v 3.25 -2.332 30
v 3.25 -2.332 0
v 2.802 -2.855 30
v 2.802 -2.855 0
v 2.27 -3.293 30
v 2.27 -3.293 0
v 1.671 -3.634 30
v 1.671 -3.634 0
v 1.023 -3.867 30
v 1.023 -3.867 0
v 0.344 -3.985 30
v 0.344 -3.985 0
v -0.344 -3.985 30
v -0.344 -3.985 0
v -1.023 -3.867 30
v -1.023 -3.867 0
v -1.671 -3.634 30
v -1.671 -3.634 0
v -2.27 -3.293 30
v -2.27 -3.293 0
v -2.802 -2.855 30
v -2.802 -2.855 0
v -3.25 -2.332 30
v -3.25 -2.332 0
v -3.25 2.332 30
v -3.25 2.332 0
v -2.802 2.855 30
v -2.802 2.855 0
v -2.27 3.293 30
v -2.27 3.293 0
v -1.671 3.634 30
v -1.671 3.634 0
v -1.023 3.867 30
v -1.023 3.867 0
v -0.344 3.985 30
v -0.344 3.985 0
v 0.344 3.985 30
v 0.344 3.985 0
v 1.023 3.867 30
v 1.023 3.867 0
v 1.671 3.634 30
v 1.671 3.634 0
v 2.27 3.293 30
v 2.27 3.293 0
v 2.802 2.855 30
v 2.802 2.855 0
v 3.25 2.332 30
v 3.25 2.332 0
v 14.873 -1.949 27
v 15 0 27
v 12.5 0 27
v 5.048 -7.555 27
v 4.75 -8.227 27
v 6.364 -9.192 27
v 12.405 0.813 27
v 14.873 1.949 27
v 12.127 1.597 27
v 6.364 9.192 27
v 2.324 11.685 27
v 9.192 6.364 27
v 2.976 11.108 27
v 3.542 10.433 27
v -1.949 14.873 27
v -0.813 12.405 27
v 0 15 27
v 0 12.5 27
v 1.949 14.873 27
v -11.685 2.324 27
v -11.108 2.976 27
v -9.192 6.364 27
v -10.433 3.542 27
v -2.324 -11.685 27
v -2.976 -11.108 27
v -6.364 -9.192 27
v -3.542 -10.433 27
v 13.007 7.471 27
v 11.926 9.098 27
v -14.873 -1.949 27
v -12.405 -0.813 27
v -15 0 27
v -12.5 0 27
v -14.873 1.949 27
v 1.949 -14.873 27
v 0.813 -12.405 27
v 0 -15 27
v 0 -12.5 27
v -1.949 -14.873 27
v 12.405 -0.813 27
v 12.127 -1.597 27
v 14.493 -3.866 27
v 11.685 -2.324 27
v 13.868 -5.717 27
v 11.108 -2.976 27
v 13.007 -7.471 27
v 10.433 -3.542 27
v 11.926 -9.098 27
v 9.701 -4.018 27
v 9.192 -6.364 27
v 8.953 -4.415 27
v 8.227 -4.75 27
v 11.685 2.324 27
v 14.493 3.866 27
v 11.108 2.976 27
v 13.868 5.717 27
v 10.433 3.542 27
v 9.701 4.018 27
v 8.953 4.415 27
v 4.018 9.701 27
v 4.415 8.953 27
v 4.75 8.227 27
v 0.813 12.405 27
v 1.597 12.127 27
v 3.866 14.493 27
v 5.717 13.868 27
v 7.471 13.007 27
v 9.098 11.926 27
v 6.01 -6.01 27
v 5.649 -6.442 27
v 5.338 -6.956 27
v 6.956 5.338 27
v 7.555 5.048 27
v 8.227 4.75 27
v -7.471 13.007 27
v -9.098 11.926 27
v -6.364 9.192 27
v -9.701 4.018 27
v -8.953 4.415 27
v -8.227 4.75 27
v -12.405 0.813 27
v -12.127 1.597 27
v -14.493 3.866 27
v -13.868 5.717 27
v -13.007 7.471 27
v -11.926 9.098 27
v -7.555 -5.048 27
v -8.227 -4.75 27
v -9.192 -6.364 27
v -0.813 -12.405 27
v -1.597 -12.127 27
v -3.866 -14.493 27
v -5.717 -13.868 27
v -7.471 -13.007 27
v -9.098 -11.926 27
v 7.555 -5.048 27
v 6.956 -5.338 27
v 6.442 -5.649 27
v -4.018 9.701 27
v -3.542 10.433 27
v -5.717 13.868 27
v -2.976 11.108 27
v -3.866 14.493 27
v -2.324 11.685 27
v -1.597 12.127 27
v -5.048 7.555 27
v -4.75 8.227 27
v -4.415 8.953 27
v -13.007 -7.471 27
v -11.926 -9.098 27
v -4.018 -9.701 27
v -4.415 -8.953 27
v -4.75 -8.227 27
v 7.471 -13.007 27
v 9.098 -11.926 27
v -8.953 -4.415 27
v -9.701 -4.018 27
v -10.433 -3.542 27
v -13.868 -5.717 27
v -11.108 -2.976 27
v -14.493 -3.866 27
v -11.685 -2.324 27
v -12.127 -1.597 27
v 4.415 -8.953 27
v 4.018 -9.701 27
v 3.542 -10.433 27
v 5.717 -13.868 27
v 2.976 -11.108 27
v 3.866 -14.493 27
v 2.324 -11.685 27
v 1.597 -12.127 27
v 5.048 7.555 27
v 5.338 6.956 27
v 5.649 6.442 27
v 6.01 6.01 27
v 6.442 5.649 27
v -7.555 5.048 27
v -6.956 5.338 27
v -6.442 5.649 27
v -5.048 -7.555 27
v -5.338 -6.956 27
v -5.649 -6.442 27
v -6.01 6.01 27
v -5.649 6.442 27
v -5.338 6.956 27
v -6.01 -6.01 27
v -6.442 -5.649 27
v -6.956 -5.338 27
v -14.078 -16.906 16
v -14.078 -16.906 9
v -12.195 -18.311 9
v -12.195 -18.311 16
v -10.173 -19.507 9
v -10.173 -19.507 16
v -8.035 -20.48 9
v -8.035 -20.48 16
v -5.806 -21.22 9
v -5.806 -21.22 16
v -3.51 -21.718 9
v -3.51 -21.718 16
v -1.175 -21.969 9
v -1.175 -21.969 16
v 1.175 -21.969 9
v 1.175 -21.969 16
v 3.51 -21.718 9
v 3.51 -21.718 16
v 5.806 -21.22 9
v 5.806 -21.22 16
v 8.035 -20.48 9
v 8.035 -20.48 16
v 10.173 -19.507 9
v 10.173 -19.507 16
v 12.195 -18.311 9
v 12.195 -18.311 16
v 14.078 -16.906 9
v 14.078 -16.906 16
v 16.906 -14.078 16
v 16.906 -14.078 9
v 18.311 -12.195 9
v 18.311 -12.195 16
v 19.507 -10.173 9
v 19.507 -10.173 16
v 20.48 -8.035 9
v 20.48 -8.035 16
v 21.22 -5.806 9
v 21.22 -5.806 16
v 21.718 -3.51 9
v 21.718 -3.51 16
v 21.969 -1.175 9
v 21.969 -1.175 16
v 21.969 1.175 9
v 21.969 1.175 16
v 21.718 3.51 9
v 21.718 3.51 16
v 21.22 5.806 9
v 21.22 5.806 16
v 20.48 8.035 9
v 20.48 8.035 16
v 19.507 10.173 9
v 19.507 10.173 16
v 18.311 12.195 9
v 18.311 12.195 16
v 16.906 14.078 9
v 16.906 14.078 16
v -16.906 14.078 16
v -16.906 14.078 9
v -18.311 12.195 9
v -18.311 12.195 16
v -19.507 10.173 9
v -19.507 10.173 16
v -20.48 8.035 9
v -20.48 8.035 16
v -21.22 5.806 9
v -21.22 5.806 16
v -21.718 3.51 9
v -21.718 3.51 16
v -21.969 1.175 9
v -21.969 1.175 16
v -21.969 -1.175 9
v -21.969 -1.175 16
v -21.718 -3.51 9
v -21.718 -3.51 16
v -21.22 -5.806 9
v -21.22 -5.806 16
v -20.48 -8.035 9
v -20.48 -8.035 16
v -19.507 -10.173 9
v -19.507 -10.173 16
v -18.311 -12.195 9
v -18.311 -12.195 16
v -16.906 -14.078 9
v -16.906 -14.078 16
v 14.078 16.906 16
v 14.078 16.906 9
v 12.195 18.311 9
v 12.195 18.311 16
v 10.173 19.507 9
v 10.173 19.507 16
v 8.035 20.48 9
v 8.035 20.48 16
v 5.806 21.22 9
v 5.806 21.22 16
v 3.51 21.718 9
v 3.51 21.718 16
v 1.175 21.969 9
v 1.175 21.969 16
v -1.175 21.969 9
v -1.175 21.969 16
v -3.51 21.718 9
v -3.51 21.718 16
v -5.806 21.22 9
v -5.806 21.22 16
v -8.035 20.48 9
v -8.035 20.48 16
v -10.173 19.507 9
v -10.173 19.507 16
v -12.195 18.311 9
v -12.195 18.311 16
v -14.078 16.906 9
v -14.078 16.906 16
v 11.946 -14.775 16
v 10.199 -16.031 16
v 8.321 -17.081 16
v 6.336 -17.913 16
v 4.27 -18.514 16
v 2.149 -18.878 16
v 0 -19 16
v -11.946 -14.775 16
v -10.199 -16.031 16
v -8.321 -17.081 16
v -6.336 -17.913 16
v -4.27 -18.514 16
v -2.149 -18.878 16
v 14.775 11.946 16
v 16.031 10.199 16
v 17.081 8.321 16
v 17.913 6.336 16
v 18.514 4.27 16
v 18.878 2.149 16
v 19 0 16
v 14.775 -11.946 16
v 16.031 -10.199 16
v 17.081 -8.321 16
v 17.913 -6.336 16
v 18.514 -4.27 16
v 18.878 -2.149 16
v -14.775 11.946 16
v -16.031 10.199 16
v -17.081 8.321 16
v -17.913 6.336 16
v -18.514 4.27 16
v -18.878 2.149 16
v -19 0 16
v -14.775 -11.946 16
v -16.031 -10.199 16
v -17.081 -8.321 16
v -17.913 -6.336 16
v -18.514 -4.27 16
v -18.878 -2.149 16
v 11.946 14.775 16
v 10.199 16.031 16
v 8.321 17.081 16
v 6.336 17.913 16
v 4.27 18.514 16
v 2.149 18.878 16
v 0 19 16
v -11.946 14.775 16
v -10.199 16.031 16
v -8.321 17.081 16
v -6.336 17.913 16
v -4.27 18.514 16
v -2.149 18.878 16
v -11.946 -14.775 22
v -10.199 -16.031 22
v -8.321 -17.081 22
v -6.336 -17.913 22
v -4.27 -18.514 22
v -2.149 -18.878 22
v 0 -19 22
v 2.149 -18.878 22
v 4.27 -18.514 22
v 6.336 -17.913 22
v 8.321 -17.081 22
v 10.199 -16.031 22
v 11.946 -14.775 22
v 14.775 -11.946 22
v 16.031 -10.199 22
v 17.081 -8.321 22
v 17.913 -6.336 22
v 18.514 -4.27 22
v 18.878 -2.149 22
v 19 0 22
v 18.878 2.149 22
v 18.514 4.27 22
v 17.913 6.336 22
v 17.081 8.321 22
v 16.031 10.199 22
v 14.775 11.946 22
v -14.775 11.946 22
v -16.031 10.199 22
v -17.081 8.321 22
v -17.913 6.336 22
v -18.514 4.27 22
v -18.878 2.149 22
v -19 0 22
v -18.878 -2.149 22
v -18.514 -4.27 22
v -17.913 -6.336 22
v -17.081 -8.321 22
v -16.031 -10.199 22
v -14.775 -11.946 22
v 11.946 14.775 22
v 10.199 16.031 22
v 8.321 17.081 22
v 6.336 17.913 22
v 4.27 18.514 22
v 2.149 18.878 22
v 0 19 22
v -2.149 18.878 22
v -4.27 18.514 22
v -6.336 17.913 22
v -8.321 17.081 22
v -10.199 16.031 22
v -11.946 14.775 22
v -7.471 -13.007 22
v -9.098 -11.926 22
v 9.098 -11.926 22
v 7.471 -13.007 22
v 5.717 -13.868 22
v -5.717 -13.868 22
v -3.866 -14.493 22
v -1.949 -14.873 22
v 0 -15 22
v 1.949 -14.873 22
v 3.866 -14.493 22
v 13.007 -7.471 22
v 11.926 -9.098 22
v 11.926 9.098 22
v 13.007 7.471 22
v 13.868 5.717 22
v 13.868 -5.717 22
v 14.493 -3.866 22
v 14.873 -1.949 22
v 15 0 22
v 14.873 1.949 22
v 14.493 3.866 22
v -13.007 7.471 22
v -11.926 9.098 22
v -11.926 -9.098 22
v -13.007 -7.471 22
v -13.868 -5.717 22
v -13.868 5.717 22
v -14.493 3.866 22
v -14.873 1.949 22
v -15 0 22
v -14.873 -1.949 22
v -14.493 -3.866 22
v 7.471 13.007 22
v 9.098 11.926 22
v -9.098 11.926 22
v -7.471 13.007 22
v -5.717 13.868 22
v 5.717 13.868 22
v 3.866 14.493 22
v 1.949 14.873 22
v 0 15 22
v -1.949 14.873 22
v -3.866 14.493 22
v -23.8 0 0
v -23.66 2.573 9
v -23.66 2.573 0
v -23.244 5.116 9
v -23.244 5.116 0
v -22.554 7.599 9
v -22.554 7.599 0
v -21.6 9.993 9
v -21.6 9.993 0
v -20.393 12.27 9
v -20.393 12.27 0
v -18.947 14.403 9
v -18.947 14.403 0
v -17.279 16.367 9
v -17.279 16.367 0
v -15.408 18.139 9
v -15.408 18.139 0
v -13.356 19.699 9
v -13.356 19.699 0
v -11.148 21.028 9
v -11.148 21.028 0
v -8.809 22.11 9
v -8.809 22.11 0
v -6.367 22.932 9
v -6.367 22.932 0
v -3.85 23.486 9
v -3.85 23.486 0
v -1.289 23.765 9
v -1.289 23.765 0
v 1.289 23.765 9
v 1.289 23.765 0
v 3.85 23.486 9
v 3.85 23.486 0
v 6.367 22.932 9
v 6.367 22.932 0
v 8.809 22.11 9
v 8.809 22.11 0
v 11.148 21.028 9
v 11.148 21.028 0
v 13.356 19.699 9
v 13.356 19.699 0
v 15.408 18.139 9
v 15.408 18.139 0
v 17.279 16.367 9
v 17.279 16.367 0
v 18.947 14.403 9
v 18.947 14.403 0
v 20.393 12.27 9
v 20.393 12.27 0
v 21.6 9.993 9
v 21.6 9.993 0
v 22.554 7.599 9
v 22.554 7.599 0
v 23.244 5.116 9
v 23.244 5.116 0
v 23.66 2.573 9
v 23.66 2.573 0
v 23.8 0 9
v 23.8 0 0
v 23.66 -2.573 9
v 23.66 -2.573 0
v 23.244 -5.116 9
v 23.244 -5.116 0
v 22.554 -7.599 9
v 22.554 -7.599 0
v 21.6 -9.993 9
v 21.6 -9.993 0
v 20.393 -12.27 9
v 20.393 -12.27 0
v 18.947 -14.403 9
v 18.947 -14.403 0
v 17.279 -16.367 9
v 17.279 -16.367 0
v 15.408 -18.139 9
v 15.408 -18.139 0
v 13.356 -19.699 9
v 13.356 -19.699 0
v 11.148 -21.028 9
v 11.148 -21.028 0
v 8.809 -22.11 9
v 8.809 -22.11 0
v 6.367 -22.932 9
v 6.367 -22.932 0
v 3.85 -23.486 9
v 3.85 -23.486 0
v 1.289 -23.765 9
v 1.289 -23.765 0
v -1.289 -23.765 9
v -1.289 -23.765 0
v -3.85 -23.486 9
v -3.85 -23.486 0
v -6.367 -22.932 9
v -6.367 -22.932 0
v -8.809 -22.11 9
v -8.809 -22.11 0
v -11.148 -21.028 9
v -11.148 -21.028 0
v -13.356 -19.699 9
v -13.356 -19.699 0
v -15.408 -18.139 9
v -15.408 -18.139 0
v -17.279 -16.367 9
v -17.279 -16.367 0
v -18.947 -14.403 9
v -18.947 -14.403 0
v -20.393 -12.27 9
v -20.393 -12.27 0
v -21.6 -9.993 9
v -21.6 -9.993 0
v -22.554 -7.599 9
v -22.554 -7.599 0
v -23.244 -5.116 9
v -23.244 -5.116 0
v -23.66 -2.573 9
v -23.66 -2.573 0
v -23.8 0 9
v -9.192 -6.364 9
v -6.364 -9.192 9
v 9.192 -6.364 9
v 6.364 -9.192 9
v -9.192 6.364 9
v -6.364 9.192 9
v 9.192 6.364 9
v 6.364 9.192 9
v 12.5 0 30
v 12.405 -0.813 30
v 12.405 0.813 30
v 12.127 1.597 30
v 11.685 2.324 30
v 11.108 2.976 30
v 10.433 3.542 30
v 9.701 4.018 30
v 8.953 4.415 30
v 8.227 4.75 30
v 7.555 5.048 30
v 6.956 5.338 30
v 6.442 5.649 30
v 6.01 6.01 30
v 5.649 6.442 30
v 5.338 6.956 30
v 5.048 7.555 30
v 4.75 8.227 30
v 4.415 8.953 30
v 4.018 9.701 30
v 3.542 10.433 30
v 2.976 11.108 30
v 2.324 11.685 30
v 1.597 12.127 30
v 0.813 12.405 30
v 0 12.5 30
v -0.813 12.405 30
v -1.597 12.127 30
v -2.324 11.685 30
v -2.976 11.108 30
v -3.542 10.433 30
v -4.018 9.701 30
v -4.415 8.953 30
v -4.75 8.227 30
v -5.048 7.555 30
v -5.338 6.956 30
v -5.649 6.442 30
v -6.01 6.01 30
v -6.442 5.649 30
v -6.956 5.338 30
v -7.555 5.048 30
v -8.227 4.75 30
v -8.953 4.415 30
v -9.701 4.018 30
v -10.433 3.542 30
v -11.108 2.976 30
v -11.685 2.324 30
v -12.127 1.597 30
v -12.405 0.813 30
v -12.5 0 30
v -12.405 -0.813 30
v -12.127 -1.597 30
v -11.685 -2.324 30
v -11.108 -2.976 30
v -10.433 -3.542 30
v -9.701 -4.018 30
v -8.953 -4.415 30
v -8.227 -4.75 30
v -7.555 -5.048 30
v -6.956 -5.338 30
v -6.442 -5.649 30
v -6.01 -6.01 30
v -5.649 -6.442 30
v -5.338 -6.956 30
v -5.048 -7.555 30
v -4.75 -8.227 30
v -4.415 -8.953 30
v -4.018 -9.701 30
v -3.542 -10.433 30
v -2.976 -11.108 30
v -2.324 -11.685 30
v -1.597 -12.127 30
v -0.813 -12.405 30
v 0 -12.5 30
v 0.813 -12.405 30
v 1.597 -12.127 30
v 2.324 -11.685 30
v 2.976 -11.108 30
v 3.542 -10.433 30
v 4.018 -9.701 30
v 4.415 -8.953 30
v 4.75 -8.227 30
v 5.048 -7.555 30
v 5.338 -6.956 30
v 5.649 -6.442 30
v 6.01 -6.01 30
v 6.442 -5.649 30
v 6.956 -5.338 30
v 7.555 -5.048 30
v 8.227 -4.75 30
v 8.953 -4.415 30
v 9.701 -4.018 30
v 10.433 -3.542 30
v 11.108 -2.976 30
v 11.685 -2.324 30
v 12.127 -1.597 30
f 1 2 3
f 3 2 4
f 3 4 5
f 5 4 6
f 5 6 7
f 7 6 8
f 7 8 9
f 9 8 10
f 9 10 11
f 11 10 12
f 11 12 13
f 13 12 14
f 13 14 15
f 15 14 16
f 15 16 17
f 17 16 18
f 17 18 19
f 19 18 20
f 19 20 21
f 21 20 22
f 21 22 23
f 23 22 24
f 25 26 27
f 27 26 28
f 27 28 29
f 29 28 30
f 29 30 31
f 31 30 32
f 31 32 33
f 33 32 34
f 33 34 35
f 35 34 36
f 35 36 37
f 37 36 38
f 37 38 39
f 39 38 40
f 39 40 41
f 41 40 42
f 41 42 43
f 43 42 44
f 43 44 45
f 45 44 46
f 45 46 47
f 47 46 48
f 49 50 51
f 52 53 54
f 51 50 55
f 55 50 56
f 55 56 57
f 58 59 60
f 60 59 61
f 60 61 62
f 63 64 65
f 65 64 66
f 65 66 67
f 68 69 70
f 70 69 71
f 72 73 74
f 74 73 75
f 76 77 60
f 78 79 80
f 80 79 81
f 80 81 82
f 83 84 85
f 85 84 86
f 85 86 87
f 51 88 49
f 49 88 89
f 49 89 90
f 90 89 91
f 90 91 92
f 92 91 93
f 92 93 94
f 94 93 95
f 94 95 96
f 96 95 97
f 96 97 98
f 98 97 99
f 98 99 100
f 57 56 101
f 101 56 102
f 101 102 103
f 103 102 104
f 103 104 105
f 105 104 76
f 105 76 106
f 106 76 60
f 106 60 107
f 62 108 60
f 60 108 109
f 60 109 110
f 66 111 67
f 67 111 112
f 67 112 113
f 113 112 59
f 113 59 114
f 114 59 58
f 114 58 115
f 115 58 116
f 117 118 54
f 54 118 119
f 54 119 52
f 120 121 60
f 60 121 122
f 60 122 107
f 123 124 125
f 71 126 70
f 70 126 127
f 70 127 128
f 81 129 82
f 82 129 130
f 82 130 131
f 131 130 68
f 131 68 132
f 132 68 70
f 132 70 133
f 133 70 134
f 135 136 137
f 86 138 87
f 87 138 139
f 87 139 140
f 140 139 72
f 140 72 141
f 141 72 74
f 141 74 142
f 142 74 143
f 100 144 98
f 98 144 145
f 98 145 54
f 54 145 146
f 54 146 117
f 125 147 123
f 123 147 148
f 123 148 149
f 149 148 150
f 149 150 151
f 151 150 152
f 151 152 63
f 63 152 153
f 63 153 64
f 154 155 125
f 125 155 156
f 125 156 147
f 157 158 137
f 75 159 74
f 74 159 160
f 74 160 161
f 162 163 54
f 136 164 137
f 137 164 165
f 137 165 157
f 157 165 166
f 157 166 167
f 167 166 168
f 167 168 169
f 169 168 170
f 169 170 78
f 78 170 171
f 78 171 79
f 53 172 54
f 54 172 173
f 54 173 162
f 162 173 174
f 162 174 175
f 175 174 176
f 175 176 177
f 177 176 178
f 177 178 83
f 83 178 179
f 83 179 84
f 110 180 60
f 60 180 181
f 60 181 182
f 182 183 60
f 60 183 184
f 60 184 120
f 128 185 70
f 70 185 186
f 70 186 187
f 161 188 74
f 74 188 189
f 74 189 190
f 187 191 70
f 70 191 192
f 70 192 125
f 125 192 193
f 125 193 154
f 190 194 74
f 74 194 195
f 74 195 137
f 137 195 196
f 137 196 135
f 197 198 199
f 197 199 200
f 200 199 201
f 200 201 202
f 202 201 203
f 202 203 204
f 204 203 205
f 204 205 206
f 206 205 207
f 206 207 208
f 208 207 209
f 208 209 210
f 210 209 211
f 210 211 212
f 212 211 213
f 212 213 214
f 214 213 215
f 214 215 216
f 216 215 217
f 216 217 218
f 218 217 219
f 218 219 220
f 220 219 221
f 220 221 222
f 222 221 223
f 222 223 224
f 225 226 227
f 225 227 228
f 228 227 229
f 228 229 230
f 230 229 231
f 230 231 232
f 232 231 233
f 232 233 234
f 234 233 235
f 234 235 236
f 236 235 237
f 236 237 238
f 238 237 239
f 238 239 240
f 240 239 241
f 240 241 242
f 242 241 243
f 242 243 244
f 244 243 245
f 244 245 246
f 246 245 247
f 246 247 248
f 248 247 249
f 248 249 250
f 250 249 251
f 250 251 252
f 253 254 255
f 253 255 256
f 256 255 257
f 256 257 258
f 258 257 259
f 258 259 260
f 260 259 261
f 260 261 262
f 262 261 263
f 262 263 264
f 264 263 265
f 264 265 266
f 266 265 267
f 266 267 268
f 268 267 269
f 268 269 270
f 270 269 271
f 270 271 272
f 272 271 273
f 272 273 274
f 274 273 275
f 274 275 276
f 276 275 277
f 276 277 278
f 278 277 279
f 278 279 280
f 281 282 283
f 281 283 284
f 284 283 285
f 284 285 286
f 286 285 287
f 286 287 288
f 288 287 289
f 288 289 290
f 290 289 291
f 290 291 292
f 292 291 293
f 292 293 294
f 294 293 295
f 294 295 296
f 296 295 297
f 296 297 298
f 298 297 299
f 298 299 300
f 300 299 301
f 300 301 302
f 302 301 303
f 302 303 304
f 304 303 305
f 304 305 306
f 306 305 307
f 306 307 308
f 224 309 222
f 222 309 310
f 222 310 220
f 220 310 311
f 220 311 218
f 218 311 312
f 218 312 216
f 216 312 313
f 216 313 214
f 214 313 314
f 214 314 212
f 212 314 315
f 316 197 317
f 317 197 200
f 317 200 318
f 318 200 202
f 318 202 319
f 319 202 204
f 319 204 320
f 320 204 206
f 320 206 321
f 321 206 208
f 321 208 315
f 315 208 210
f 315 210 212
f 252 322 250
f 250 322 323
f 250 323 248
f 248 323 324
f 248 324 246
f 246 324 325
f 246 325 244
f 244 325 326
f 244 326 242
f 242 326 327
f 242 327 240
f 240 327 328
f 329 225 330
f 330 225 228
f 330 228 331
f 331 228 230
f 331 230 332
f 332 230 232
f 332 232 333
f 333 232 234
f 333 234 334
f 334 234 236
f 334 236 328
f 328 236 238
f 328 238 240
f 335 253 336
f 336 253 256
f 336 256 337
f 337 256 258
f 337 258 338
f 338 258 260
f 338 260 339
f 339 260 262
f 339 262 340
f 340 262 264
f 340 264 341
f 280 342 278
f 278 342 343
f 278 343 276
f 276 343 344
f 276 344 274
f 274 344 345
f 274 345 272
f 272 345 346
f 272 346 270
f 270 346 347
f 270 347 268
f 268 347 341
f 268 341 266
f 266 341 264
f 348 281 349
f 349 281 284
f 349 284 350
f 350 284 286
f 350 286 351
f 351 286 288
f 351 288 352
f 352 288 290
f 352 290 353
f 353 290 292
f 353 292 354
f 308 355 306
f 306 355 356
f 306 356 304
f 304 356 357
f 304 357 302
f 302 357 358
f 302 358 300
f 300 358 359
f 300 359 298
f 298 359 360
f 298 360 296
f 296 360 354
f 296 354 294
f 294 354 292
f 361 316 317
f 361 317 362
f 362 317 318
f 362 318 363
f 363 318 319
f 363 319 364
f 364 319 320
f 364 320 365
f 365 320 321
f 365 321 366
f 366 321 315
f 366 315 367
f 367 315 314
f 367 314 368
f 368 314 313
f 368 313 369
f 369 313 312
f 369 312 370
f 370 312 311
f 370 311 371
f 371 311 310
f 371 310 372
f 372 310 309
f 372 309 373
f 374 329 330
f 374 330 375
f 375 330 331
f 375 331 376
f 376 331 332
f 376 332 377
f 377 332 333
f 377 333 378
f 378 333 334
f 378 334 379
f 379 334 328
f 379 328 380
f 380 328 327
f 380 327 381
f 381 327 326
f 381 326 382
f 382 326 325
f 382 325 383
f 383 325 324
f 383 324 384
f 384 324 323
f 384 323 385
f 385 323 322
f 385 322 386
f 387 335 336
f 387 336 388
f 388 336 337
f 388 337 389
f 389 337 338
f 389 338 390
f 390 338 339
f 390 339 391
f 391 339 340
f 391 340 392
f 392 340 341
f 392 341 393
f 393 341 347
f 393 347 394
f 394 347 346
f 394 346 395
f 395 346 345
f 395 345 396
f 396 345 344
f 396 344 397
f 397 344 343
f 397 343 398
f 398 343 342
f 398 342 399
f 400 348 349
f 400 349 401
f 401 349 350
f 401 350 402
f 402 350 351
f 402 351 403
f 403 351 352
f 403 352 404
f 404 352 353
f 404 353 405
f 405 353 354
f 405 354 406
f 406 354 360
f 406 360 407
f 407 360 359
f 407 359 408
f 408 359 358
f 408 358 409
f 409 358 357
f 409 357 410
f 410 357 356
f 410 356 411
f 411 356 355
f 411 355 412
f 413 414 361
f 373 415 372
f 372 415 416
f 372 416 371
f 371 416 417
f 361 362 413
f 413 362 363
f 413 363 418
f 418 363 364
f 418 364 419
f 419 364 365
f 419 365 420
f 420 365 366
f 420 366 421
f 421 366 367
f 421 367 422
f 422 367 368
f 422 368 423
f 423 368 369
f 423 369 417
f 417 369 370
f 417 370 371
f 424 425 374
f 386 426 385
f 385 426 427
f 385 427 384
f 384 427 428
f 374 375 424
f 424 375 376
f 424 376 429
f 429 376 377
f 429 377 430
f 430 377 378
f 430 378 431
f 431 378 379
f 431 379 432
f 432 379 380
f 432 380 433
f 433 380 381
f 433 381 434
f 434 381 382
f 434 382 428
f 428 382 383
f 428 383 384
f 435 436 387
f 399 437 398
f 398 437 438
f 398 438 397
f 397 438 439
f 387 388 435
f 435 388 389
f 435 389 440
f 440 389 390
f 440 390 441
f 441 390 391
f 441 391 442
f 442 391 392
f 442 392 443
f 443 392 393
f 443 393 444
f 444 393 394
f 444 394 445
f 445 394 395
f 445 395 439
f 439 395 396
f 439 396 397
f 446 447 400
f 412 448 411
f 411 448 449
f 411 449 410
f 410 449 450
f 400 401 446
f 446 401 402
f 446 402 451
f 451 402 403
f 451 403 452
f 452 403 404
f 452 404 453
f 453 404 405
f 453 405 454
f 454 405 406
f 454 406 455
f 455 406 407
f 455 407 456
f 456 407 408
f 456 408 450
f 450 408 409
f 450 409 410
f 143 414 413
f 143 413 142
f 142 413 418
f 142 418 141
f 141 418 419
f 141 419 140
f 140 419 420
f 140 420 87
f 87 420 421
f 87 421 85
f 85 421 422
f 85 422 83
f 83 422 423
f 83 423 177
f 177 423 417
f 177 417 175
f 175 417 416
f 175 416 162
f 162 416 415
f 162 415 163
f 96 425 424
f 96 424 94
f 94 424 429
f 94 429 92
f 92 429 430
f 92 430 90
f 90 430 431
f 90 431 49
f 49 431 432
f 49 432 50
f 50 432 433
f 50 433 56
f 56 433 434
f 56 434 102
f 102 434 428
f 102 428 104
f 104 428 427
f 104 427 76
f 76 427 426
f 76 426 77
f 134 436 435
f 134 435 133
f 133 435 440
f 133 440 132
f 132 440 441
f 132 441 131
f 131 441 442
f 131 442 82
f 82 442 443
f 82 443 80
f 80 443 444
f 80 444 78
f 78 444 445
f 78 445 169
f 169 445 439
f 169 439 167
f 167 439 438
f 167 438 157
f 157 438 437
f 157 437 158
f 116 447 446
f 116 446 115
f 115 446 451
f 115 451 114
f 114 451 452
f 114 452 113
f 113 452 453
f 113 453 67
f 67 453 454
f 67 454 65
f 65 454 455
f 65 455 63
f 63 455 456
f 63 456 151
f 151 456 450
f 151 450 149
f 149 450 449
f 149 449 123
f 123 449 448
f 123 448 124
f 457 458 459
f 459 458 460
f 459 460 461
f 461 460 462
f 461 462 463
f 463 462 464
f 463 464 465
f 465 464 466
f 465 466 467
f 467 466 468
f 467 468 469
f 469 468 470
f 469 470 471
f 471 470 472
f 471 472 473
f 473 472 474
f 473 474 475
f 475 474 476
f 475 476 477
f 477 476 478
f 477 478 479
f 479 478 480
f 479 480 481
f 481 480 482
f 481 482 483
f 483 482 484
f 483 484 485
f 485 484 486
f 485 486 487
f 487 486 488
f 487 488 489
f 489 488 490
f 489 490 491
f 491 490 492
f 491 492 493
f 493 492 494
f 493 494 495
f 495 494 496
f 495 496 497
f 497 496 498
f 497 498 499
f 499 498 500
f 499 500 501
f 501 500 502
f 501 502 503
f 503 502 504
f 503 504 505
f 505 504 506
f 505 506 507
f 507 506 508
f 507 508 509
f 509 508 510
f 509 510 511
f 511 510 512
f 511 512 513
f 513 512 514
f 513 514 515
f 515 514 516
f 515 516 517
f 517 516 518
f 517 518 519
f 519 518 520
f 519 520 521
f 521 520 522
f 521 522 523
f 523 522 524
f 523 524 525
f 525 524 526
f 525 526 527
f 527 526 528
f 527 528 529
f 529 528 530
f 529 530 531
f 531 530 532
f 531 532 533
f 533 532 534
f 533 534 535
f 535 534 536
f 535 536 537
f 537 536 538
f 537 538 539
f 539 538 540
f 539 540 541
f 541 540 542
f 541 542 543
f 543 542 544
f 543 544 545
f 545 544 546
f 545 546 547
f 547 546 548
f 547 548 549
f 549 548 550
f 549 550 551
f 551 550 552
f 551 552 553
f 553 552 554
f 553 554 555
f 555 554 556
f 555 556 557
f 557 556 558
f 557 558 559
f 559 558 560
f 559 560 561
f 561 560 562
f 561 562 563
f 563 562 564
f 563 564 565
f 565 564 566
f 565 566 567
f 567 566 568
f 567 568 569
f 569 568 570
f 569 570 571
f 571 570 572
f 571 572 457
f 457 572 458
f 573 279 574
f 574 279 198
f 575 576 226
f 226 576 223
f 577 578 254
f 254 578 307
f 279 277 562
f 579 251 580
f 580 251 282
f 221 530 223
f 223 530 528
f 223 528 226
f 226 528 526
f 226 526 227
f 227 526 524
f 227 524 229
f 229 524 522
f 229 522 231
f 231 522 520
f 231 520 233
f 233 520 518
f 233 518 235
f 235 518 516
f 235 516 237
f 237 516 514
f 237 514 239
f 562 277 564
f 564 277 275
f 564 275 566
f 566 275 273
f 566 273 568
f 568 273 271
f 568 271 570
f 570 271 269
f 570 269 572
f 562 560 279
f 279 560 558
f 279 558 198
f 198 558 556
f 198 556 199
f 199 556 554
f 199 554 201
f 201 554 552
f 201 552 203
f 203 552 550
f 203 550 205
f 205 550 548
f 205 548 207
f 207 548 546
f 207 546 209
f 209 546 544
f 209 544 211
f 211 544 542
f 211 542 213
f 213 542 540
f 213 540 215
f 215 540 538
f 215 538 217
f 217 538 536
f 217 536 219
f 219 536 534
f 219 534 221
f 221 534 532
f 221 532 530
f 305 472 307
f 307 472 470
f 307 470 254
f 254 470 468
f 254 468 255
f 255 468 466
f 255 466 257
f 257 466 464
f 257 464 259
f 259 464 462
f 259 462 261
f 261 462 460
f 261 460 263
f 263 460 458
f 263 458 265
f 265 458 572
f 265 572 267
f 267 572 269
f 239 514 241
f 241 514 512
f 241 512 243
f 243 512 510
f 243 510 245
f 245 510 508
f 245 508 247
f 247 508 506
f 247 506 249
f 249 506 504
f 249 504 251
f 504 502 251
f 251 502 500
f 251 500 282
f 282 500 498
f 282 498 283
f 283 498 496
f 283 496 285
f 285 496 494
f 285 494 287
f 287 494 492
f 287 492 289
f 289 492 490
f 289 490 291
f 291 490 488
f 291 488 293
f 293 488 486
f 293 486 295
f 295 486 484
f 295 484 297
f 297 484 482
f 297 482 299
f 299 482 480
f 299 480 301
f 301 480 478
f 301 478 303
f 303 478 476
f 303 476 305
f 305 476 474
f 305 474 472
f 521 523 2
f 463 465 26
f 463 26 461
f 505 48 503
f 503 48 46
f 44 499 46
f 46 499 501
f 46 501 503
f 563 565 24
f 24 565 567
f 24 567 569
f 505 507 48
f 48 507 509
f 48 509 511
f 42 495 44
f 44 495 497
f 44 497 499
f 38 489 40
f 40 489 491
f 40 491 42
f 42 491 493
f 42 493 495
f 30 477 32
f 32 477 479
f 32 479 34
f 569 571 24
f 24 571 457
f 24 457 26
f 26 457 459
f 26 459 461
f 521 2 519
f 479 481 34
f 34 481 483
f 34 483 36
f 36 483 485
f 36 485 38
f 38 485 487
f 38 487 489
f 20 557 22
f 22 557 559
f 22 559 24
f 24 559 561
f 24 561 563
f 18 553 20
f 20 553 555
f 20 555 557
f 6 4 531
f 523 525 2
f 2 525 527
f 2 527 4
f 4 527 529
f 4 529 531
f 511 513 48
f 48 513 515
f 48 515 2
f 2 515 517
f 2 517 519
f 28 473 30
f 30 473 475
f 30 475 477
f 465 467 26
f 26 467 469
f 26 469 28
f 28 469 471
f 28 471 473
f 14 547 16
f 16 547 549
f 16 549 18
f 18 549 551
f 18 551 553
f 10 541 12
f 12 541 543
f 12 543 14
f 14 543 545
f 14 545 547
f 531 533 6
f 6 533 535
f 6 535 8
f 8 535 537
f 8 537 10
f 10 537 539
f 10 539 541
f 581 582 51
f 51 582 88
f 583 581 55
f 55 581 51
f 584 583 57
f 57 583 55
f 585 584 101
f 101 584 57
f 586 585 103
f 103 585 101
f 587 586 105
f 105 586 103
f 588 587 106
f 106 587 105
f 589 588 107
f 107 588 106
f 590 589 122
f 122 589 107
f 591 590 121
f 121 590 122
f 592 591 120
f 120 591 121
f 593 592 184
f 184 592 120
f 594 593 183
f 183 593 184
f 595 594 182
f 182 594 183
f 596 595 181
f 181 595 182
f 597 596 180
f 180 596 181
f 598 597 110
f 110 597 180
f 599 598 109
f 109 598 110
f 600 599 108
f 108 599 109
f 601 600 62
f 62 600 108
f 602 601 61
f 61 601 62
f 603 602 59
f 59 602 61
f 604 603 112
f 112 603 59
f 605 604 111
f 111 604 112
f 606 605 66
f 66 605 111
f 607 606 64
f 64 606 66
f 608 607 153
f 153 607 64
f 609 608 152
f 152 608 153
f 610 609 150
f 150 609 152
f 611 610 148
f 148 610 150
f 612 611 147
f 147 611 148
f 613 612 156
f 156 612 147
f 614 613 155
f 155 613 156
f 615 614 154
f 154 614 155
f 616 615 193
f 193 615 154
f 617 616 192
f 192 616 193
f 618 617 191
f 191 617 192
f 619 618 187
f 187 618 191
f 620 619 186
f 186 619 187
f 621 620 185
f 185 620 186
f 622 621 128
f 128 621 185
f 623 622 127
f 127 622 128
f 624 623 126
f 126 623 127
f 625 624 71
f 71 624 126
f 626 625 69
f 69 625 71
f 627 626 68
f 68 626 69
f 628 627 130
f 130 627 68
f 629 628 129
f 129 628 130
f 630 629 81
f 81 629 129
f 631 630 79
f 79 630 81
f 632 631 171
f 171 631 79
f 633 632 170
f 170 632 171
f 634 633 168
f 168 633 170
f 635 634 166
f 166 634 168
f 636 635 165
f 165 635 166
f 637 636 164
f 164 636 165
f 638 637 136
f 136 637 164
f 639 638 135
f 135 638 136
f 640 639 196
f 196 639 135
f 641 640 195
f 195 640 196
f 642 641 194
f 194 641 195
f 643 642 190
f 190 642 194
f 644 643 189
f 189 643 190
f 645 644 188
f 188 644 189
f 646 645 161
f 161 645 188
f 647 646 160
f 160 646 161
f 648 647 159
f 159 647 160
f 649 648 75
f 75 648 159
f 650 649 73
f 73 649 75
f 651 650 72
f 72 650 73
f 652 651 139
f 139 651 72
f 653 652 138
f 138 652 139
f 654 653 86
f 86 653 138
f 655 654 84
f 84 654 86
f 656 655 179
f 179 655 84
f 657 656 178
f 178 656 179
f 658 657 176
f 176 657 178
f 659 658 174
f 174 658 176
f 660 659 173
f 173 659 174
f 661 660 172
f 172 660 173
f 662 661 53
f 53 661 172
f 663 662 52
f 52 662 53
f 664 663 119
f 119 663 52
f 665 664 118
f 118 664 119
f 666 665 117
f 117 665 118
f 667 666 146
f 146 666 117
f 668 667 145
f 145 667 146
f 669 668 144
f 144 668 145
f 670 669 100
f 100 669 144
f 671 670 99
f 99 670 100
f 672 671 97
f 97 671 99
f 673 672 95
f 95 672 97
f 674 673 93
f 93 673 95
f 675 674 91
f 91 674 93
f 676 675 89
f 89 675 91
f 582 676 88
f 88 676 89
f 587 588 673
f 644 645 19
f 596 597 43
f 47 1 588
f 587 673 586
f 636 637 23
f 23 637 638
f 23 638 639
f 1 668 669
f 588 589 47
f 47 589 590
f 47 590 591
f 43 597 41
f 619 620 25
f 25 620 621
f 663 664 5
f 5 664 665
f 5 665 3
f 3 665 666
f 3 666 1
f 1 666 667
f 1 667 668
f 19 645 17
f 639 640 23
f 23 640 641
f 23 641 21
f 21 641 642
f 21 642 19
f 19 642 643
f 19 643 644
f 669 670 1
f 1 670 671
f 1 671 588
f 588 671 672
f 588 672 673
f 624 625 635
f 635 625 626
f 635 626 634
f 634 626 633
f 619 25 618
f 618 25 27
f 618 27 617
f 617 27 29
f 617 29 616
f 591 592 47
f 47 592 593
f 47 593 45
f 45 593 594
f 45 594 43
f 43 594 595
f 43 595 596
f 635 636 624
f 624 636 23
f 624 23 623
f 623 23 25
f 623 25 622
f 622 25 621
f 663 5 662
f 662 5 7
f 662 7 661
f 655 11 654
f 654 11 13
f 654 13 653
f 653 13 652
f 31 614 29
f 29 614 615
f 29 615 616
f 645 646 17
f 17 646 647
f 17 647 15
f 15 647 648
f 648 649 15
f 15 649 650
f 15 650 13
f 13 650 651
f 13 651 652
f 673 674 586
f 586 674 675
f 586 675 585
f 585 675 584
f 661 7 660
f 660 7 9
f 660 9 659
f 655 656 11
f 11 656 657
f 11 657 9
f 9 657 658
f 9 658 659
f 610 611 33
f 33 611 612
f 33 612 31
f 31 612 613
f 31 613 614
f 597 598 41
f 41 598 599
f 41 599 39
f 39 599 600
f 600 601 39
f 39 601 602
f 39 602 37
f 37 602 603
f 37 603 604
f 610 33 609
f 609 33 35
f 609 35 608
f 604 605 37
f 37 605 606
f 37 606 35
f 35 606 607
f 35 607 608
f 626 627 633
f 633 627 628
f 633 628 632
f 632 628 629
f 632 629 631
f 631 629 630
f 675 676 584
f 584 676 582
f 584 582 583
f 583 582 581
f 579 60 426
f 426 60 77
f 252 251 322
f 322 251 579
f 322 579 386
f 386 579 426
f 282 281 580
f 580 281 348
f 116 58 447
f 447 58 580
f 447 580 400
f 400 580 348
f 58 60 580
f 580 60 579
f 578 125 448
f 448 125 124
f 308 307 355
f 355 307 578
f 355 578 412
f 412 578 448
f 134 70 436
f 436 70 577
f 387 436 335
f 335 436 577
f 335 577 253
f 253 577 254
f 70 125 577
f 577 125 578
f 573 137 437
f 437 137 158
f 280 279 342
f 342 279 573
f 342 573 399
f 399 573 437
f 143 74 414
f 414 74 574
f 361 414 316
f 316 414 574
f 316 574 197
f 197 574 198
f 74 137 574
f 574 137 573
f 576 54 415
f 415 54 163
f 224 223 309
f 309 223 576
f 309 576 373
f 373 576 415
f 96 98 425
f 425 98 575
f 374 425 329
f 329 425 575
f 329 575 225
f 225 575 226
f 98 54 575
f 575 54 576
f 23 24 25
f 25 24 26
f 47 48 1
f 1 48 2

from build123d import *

# Parameters (mm, degrees)
SKETCH1_R        = 23.8
STEP1_DEPTH      = 9
SKETCH2_R        = 22
STEP2_DEPTH      = 7
SKETCH3_R        = 19
STEP3_DEPTH      = 6
SKETCH4_R        = 15
STEP4_DEPTH      = 5
LOBED_TOP_DEPTH  = 3
FLUTES_DEPTH     = 18
SKETCH7_R        = 4
BORE_DEPTH       = 30
SKETCH8_W        = 1.2
SKETCH8_H        = 9
BORE_FLATS_DEPTH = 30


with BuildPart() as part:
    # Sketch1 → Step1 (new body)
    with BuildSketch(Plane.XY):
        Circle(SKETCH1_R)
    extrude(amount=STEP1_DEPTH)

    # Sketch2 → Step2 (add)
    with BuildSketch(Plane.XY.offset(9)):
        Circle(SKETCH2_R)
    extrude(amount=STEP2_DEPTH)

    # Sketch3 → Step3 (add)
    with BuildSketch(Plane.XY.offset(16)):
        Circle(SKETCH3_R)
    extrude(amount=STEP3_DEPTH)

    # Sketch4 → Step4 (add)
    with BuildSketch(Plane.XY.offset(22)):
        Circle(SKETCH4_R)
    extrude(amount=STEP4_DEPTH)

    # Sketch5 → Lobed_top (add)
    with BuildSketch(Plane.XY.offset(27)):
        Polygon((12.5, 0), (12.405234104, 0.813082), (12.127403917, 1.596603015), (11.68528529, 2.32434776), (11.108147002, 2.976419019), (10.432933463, 3.541503697), (9.700735091, 4.01817604), (8.952908293, 4.415085774), (8.227241336, 4.75), (7.554555327, 5.047792488), (6.956081779, 5.33758928), (6.441875004, 5.649372756), (6.01040764, 6.01040764), (5.649372756, 6.441875004), (5.33758928, 6.956081779), (5.047792488, 7.554555327), (4.75, 8.227241336), (4.415085774, 8.952908293), (4.01817604, 9.700735091), (3.541503697, 10.432933463), (2.976419019, 11.108147002), (2.32434776, 11.68528529), (1.596603015, 12.127403917), (0.813082, 12.405234104), (0, 12.5), (-0.813082, 12.405234104), (-1.596603015, 12.127403917), (-2.32434776, 11.68528529), (-2.976419019, 11.108147002), (-3.541503697, 10.432933463), (-4.01817604, 9.700735091), (-4.415085774, 8.952908293), (-4.75, 8.227241336), (-5.047792488, 7.554555327), (-5.33758928, 6.956081779), (-5.649372756, 6.441875004), (-6.01040764, 6.01040764), (-6.441875004, 5.649372756), (-6.956081779, 5.33758928), (-7.554555327, 5.047792488), (-8.227241336, 4.75), (-8.952908293, 4.415085774), (-9.700735091, 4.01817604), (-10.432933463, 3.541503697), (-11.108147002, 2.976419019), (-11.68528529, 2.32434776), (-12.127403917, 1.596603015), (-12.405234104, 0.813082), (-12.5, 0), (-12.405234104, -0.813082), (-12.127403917, -1.596603015), (-11.68528529, -2.32434776), (-11.108147002, -2.976419019), (-10.432933463, -3.541503697), (-9.700735091, -4.01817604), (-8.952908293, -4.415085774), (-8.227241336, -4.75), (-7.554555327, -5.047792488), (-6.956081779, -5.33758928), (-6.441875004, -5.649372756), (-6.01040764, -6.01040764), (-5.649372756, -6.441875004), (-5.33758928, -6.956081779), (-5.047792488, -7.554555327), (-4.75, -8.227241336), (-4.415085774, -8.952908293), (-4.01817604, -9.700735091), (-3.541503697, -10.432933463), (-2.976419019, -11.108147002), (-2.32434776, -11.68528529), (-1.596603015, -12.127403917), (-0.813082, -12.405234104), (0, -12.5), (0.813082, -12.405234104), (1.596603015, -12.127403917), (2.32434776, -11.68528529), (2.976419019, -11.108147002), (3.541503697, -10.432933463), (4.01817604, -9.700735091), (4.415085774, -8.952908293), (4.75, -8.227241336), (5.047792488, -7.554555327), (5.33758928, -6.956081779), (5.649372756, -6.441875004), (6.01040764, -6.01040764), (6.441875004, -5.649372756), (6.956081779, -5.33758928), (7.554555327, -5.047792488), (8.227241336, -4.75), (8.952908293, -4.415085774), (9.700735091, -4.01817604), (10.432933463, -3.541503697), (11.108147002, -2.976419019), (11.68528529, -2.32434776), (12.127403917, -1.596603015), (12.405234104, -0.813082), align=None)
    extrude(amount=LOBED_TOP_DEPTH)

    # Sketch6 → Flutes (cut)
    with BuildSketch(Plane.XY.offset(9)):
        Polygon((9.192388155, 6.363961031), (19.657568517, 16.829141392), (16.829141392, 19.657568517), (6.363961031, 9.192388155), align=None)
        Polygon((-6.363961031, 9.192388155), (-16.829141392, 19.657568517), (-19.657568517, 16.829141392), (-9.192388155, 6.363961031), align=None)
        Polygon((-9.192388155, -6.363961031), (-19.657568517, -16.829141392), (-16.829141392, -19.657568517), (-6.363961031, -9.192388155), align=None)
        Polygon((6.363961031, -9.192388155), (16.829141392, -19.657568517), (19.657568517, -16.829141392), (9.192388155, -6.363961031), align=None)
    extrude(amount=FLUTES_DEPTH, mode=Mode.SUBTRACT)

    # Sketch7 → Bore (cut)
    with BuildSketch(Plane.XY):
        Circle(SKETCH7_R)
    extrude(amount=BORE_DEPTH, mode=Mode.SUBTRACT)

    # Sketch8 → Bore_flats (add)
    with BuildSketch(Plane.XY):
        with Locations((3.85, 0)):
            Rectangle(SKETCH8_W, SKETCH8_H)
        with Locations((-3.85, 0)):
            Rectangle(SKETCH8_W, SKETCH8_H)
    extrude(amount=BORE_FLATS_DEPTH)


solid = part.part
